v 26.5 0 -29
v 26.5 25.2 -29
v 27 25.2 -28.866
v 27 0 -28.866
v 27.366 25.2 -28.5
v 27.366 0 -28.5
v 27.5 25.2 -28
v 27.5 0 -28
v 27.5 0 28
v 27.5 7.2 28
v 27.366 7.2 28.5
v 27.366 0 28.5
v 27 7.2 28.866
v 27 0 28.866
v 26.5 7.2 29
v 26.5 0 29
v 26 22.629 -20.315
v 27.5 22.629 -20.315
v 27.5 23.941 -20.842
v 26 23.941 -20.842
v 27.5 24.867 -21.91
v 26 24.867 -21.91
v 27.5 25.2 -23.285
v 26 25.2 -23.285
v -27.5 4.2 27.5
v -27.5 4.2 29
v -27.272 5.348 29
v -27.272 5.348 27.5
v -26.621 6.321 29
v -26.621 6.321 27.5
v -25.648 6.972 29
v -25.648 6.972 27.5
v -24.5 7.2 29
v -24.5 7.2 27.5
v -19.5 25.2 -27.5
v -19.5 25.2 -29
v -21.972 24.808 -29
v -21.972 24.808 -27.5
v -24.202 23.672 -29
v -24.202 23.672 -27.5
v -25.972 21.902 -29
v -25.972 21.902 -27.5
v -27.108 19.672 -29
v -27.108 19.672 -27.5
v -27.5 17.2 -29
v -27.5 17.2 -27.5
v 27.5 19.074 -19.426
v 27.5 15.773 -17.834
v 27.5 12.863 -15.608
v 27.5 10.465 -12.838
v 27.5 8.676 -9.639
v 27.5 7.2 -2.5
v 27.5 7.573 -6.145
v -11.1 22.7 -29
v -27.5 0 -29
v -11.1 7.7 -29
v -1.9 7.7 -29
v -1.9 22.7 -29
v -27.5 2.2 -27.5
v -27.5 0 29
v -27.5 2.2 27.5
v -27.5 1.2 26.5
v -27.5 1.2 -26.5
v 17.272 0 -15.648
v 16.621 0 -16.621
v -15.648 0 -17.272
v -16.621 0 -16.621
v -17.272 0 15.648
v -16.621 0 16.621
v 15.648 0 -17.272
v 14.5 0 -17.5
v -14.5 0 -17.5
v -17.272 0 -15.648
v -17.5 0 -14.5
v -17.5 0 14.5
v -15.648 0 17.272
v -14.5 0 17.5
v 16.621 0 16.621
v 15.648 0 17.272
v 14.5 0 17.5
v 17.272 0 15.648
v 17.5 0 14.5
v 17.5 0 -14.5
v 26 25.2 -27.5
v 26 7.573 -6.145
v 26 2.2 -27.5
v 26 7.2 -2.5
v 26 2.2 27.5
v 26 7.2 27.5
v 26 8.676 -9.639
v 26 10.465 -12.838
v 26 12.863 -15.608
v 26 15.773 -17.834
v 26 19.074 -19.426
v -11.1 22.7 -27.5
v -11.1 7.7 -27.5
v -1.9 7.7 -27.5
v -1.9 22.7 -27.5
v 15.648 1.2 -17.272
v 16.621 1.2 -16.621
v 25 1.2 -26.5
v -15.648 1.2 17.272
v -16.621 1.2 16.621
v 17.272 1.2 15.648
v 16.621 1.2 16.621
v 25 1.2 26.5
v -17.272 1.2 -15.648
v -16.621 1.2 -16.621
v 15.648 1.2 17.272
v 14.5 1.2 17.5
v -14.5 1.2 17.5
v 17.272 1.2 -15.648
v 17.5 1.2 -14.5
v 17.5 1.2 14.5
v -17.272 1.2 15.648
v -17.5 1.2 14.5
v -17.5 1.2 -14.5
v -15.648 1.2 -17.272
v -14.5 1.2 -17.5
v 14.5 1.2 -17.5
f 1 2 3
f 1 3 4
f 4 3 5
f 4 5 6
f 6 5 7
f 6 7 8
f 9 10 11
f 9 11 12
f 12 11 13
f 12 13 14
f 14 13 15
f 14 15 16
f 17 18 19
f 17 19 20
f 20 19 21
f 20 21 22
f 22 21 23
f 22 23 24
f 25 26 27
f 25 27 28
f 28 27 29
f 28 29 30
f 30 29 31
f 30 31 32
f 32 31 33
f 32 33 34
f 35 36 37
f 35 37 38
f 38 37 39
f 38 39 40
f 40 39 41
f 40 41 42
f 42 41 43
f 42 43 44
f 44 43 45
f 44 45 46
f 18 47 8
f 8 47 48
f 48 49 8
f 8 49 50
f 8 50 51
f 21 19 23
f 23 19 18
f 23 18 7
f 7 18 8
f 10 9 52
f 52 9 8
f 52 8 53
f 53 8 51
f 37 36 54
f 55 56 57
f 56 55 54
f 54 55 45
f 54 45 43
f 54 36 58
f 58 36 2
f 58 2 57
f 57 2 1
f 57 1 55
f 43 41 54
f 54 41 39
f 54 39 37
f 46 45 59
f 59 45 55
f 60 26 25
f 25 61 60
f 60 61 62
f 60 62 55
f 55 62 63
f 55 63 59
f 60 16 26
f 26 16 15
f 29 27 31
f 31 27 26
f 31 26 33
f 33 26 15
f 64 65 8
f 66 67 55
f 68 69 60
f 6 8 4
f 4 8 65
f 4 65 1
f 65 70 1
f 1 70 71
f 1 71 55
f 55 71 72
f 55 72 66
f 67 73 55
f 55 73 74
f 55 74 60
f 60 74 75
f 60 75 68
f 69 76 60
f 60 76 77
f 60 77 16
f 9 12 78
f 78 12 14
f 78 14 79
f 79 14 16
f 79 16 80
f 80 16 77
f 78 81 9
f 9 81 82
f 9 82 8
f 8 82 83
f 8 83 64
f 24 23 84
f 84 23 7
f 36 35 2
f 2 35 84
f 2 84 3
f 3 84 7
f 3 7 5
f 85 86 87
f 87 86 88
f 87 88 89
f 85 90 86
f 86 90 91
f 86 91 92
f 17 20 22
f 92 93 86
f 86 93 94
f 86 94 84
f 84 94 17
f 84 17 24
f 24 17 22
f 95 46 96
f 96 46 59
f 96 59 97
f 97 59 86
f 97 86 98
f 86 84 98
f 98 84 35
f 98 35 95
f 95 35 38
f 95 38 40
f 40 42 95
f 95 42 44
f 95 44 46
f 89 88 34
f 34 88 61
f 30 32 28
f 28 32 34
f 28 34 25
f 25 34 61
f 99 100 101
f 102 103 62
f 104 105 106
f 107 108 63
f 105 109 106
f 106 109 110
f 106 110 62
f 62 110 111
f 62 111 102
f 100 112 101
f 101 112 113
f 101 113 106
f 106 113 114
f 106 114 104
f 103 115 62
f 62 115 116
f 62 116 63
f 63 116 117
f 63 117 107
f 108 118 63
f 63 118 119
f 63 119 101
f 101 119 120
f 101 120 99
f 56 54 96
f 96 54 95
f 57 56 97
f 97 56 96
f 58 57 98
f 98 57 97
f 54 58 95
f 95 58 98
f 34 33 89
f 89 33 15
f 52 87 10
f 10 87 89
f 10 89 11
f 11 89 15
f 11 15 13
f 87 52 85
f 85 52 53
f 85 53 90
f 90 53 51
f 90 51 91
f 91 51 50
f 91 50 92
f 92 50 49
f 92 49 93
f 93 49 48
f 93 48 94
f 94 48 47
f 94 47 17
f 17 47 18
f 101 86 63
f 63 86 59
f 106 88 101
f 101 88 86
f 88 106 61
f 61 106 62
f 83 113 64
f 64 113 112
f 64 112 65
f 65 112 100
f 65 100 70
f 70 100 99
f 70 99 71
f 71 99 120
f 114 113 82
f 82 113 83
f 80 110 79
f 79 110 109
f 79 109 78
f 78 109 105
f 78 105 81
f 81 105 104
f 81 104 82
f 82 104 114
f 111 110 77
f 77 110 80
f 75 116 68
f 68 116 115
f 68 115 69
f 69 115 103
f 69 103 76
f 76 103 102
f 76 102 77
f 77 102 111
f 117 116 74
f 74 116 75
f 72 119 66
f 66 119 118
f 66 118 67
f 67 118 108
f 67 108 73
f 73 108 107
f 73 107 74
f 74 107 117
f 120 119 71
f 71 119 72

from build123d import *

# Parameters (mm, degrees)
ESBO_O1_W             = 55
ESBO_O1_H             = 58
BASE_DEPTH            = 1.2
ESBO_O2_W             = 55
ESBO_O2_H             = 58
ESBO_O2_W_2           = 52
ESBO_O2_H_2           = 55
PAREDES_DEPTH         = 24
ESBO_O3_W             = 4.971937724
ESBO_O3_H             = 55
CORTE_EXTRUS_O1_DEPTH = 24
ESBO_O4_W             = 9.2
ESBO_O4_H             = 15
ENCAIXE_CHAVE_DEPTH   = 17
ESBO_O5_W             = 1.5
ESBO_O5_H             = 18
CORTE_EXTRUS_O3_DEPTH = 68.089790579
ESBO_O6_W             = 30
ESBO_O6_H             = 18
CORTE_EXTRUS_O4_DEPTH = 17
FILETE1_R             = 8
FILETE2_R             = 3
FILETE3_R             = 3
FILETE4_R             = 1
FILETE5_R             = 1
CHANFRO1_SIZE         = 1
CORTE_EXTRUS_O5_DEPTH = 17


with BuildPart() as part:
    # Esboço1 → Base (new body)
    with BuildSketch(Plane(origin=(0, 0, 0), x_dir=(1, 0, 0), z_dir=(0, 1, 0))):
        Rectangle(ESBO_O1_W, ESBO_O1_H)
    extrude(amount=BASE_DEPTH)

    # Esboço2 → Paredes (add)
    with BuildSketch(Plane(origin=(0, 1.2, 0), x_dir=(1, 0, 0), z_dir=(0, 1, 0))):
        Rectangle(ESBO_O2_W, ESBO_O2_H)
        Rectangle(ESBO_O2_W_2, ESBO_O2_H_2, mode=Mode.SUBTRACT)
    extrude(amount=PAREDES_DEPTH)

    # Esboço3 → Corte-extrusão1 (cut)
    with BuildSketch(Plane(origin=(0, 25.2, 0), x_dir=(1, 0, 0), z_dir=(0, 1, 0))):
        with Locations((-27.5, 0)):
            Rectangle(ESBO_O3_W, ESBO_O3_H)
    extrude(amount=-CORTE_EXTRUS_O1_DEPTH, mode=Mode.SUBTRACT)

    # Esboço4 → Encaixe chave (cut)
    with BuildSketch(Plane(origin=(0, 0, -29), x_dir=(-1, 0, 0), z_dir=(0, 0, -1))):
        with Locations((6.5, 15.2)):
            Rectangle(ESBO_O4_W, ESBO_O4_H)
    extrude(amount=-ENCAIXE_CHAVE_DEPTH, mode=Mode.SUBTRACT)

    # Esboço5 → Corte-extrusão3 (cut, through all)
    with BuildSketch(Plane.ZY.offset(27.5)):
        with Locations((28.25, 16.2)):
            Rectangle(ESBO_O5_W, ESBO_O5_H)
    extrude(amount=-CORTE_EXTRUS_O3_DEPTH, mode=Mode.SUBTRACT)

    # Esboço6 → Corte-extrusão4 (cut)
    with BuildSketch(Plane(origin=(27.5, 0, 0), x_dir=(0, 0, -1), z_dir=(1, 0, 0))):
        with BuildLine():
            Line((20.5, 25.2), (2.5, 25.2))
            Line((2.5, 25.2), (2.5, 7.2))
            ThreePointArc((2.5, 7.2), (15.227922061, 12.472077939), (20.5, 25.2))
        make_face()
        with Locations((-12.5, 16.2)):
            Rectangle(ESBO_O6_W, ESBO_O6_H)
    extrude(amount=-CORTE_EXTRUS_O4_DEPTH, mode=Mode.SUBTRACT)

    # Filete1
    filete1_edges = [part.edges().sort_by_distance(p)[0] for p in [
        (-27.5, 25.2, -28.25),
    ]]
    fillet(filete1_edges, radius=FILETE1_R)

    # Filete2
    filete2_edges = [part.edges().sort_by_distance(p)[0] for p in [
        (-27.5, 7.2, 28.25),
    ]]
    fillet(filete2_edges, radius=FILETE2_R)

    # Filete3
    filete3_edges = [part.edges().sort_by_distance(p)[0] for p in [
        (26.75, 25.2, -20.5),
    ]]
    fillet(filete3_edges, radius=FILETE3_R)

    # Filete4
    filete4_edges = [part.edges().sort_by_distance(p)[0] for p in [
        (27.5, 3.6, 29),
    ]]
    fillet(filete4_edges, radius=FILETE4_R)

    # Filete5
    filete5_edges = [part.edges().sort_by_distance(p)[0] for p in [
        (27.5, 12.6, -29),
    ]]
    fillet(filete5_edges, radius=FILETE5_R)

    # Chanfro1
    chanfro1_edges = [part.edges().sort_by_distance(p)[0] for p in [
        (26, 1.2, 0),
        (-0.75, 1.2, -27.5),
        (-0.75, 1.2, 27.5),
    ]]
    chamfer(chanfro1_edges, length=CHANFRO1_SIZE)

    # Esboço7 → Corte-extrusão5 (cut)
    with BuildSketch(Plane(origin=(0, 1.2, 0), x_dir=(1, 0, 0), z_dir=(0, 1, 0))):
        with BuildLine():
            Line((-14.5, -17.5), (14.5, -17.5))
            ThreePointArc((14.5, -17.5), (16.621320344, -16.621320344), (17.5, -14.5))
            Line((17.5, -14.5), (17.5, 14.5))
            ThreePointArc((17.5, 14.5), (16.621320344, 16.621320344), (14.5, 17.5))
            Line((14.5, 17.5), (-14.5, 17.5))
            ThreePointArc((-14.5, 17.5), (-16.621320344, 16.621320344), (-17.5, 14.5))
            Line((-17.5, 14.5), (-17.5, -14.5))
            ThreePointArc((-17.5, -14.5), (-16.621320344, -16.621320344), (-14.5, -17.5))
        make_face()
    extrude(amount=-CORTE_EXTRUS_O5_DEPTH, mode=Mode.SUBTRACT)


solid = part.part
